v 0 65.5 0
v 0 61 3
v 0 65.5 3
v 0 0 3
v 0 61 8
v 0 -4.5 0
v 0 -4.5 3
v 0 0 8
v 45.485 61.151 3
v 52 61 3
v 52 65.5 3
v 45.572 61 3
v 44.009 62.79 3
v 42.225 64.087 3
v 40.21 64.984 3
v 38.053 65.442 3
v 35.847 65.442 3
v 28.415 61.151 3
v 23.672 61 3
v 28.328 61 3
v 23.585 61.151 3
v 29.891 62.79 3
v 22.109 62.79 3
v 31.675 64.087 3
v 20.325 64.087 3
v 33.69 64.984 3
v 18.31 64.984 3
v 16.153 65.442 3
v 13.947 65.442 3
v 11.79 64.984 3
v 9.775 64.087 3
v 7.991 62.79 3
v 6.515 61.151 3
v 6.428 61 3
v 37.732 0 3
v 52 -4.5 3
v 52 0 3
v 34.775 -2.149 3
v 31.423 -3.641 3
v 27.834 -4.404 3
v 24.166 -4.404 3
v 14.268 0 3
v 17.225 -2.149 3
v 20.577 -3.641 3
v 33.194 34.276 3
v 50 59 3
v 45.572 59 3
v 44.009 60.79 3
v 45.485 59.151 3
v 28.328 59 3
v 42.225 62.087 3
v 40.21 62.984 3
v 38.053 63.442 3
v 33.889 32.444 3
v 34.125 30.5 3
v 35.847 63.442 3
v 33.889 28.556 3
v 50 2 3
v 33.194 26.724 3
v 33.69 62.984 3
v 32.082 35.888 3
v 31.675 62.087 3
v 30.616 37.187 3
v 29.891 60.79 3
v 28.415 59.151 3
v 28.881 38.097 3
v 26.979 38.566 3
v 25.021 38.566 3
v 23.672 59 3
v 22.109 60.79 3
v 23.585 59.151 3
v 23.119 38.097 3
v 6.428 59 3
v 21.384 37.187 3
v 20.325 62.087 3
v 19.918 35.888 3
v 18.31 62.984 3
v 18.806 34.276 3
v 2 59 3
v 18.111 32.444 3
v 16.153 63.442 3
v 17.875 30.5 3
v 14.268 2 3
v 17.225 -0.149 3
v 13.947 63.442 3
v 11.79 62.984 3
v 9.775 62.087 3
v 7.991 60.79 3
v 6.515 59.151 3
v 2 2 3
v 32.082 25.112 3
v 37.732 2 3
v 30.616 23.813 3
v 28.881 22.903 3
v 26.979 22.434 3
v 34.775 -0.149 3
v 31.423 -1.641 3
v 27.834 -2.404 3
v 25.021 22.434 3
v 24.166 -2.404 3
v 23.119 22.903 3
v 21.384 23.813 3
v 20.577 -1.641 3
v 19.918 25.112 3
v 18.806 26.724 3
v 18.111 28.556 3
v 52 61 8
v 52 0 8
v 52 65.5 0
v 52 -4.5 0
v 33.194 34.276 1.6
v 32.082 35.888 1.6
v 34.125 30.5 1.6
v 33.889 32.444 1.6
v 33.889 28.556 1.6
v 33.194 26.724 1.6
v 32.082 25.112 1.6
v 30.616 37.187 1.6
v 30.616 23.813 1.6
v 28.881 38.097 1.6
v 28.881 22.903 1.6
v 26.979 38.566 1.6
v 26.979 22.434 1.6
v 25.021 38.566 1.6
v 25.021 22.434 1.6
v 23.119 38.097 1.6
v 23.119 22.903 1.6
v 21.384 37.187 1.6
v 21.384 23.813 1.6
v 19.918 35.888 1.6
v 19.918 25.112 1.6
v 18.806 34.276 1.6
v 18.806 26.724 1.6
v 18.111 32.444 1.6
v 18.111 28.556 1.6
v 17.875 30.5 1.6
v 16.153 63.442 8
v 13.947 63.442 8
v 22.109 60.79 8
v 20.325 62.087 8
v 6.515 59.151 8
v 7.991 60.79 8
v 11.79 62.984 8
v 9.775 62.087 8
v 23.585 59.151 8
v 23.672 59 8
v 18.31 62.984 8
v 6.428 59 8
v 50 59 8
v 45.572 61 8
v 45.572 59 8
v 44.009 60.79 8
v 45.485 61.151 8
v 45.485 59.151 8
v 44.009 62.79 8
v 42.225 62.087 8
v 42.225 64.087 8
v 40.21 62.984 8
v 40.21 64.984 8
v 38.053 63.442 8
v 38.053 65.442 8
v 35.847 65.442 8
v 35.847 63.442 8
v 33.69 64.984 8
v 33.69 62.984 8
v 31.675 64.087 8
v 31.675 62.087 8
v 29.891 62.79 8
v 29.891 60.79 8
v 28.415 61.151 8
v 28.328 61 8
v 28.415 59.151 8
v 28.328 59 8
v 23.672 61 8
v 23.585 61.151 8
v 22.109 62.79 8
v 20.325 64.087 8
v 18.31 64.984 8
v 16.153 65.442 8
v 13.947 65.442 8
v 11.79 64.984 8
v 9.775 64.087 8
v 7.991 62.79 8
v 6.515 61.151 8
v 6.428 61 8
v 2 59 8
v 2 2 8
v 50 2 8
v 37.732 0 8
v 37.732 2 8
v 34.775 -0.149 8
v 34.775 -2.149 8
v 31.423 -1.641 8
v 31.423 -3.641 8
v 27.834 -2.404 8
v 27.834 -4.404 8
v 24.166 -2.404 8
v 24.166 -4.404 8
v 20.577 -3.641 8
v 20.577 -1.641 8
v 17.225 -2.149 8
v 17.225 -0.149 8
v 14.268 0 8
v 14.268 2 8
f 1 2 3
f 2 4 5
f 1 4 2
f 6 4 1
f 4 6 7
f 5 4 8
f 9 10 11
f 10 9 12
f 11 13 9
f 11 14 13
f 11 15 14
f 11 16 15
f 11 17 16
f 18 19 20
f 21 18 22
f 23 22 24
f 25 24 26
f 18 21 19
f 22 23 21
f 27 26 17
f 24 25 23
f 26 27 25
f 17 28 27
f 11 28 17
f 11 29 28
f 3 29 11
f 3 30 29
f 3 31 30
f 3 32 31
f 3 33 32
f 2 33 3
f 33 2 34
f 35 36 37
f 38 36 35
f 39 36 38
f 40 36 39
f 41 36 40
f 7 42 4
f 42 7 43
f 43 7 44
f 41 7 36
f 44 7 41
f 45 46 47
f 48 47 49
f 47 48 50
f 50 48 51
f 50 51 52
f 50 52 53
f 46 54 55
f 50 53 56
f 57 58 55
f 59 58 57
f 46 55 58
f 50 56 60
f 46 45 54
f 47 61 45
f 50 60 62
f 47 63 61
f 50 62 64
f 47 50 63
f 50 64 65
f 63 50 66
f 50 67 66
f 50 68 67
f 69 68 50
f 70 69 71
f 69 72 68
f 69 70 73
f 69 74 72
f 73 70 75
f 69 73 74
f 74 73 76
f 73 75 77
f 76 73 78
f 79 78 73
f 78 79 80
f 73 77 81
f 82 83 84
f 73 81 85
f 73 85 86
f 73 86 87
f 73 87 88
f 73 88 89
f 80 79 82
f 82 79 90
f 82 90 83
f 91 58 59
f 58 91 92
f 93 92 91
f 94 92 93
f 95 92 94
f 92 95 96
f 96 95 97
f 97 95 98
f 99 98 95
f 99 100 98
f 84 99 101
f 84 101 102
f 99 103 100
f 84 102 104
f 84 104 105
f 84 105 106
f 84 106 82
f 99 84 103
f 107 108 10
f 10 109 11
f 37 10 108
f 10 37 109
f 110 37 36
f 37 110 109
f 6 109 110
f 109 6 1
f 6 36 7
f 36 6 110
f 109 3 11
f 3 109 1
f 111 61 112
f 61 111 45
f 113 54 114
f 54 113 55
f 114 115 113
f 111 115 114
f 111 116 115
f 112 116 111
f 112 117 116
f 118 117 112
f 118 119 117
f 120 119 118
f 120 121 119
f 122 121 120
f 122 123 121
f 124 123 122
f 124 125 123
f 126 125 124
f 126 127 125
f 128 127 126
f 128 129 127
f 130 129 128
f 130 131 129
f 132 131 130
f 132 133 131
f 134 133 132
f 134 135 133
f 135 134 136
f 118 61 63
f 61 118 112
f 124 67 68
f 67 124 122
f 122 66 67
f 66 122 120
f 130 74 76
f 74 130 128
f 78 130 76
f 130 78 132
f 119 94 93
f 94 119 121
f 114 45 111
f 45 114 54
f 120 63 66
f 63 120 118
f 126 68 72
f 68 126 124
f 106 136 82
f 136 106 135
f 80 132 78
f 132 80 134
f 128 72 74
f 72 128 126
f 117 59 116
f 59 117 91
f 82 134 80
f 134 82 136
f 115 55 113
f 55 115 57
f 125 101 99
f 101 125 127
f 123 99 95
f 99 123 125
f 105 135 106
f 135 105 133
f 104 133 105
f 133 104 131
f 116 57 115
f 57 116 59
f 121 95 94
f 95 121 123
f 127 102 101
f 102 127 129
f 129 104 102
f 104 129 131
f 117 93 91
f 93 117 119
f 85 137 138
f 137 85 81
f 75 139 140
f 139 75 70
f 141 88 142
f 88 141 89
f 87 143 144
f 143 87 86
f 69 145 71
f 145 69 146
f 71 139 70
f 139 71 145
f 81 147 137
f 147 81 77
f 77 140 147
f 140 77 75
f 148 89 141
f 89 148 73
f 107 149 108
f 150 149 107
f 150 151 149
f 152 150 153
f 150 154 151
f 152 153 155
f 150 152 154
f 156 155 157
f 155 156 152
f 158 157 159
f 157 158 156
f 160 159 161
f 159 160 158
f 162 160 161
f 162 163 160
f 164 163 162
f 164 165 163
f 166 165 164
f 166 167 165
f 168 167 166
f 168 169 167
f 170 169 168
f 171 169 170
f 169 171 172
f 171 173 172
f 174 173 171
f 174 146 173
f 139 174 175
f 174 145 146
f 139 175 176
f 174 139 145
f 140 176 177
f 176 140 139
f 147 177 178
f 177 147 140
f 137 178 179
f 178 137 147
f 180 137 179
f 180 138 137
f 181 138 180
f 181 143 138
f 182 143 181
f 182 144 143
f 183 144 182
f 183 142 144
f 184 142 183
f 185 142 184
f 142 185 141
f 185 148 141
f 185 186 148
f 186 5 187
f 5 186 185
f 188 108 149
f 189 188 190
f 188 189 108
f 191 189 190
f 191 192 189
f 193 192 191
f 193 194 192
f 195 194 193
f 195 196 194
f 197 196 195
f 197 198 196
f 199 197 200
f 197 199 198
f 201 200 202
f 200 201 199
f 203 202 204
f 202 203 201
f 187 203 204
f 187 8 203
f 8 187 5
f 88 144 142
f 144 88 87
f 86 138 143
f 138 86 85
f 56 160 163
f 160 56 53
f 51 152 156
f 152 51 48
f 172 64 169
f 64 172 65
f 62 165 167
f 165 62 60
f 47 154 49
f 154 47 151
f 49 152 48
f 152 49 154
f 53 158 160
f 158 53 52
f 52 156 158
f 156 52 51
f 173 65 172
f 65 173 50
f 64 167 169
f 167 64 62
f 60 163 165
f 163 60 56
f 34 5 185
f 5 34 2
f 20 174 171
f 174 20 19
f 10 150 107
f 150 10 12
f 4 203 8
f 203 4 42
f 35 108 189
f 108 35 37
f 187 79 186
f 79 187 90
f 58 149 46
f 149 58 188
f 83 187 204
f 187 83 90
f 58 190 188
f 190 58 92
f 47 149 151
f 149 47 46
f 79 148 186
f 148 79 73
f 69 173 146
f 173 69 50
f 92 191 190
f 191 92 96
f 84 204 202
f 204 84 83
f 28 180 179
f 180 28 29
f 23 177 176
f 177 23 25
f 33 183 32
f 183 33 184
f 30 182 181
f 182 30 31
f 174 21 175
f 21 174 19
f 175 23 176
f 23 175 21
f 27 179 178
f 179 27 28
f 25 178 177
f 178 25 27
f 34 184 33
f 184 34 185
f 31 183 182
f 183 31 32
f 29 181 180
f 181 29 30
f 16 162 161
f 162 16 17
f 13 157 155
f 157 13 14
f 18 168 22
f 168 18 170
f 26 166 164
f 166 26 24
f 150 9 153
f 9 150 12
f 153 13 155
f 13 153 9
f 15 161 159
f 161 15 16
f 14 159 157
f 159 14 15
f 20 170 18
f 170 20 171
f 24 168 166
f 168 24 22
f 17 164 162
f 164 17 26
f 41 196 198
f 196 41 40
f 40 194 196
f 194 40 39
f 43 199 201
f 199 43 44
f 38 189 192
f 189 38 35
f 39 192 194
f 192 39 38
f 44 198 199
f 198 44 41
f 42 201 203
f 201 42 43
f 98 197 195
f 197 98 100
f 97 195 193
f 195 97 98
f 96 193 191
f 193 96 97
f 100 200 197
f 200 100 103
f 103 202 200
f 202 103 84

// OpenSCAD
length = 47; 
width = 56;
height = 3;
rimHeight = 5;
rimThickness = 2;
notchLength = 25;
//Based on washer size:
washerDiameter = 16.25;
washerHeight = 1.4;
rimPadding = 1;
totalHeight = height + rimHeight;

totalLength = length + rimThickness * 2 + rimPadding;
totalWidth = width + rimThickness * 2 + rimPadding;
extraLidForCircles = 4.5;
union()
{
    difference() {
        translate([0, -extraLidForCircles, 0])
            cube([totalLength, totalWidth + 2 * extraLidForCircles, height]);
        translate([totalLength/2, totalWidth/2, height - washerHeight])
            cylinder(washerHeight, d=washerDiameter);
    }
    
    difference() {
        translate([0, 0, height])
            cube([totalLength, totalWidth, rimHeight]);
        translate([rimThickness, rimThickness, height])
            cube([length + rimPadding, width + rimPadding, rimHeight]);
        LeftCircles();
        RightCircles();
    }
    
    difference(){
        union()
        {
            translate([0, -rimThickness, 0])
                LeftCircles();
            translate([0, rimThickness, 0])
                RightCircles();
        }
        translate([0, 0, height])
            cube([totalLength, totalWidth, rimHeight]);
        LeftCircles();
        RightCircles();
    }
}

module LeftCircles()
{
fiftyCoinHeight = 16.7 + .5;
oneCoinSecondHeight = 25.2 + .5;


coinOffset = 2.5;
fiftyCoinDiameter = 34.1 + 1;
oneCoinDiameter = 20.1 + 1;

spaceBetweenCircles = 1.5;
    translate([totalLength/2, fiftyCoinDiameter/2 - coinOffset, height])
        cylinder(rimHeight, d=fiftyCoinDiameter);
}

module RightCircles()
{
fiftyCoinHeight = 16.7 + .5;
oneCoinSecondHeight = 25.2 + .5;


coinOffset = 2.5;
fiftyCoinDiameter = 34.1 + 1;
oneCoinDiameter = 20.1 + 1;

spaceBetweenCircles = 1.5;
        
        translate([oneCoinDiameter/2 + spaceBetweenCircles + rimThickness + rimPadding, totalWidth - (oneCoinDiameter/2 - coinOffset), height])
        cylinder(rimHeight, d=oneCoinDiameter);
    
    translate([totalLength - (oneCoinDiameter/2 + spaceBetweenCircles + rimThickness + rimPadding), totalWidth - (oneCoinDiameter/2 - coinOffset), height])
        cylinder(rimHeight, d=oneCoinDiameter);
}
